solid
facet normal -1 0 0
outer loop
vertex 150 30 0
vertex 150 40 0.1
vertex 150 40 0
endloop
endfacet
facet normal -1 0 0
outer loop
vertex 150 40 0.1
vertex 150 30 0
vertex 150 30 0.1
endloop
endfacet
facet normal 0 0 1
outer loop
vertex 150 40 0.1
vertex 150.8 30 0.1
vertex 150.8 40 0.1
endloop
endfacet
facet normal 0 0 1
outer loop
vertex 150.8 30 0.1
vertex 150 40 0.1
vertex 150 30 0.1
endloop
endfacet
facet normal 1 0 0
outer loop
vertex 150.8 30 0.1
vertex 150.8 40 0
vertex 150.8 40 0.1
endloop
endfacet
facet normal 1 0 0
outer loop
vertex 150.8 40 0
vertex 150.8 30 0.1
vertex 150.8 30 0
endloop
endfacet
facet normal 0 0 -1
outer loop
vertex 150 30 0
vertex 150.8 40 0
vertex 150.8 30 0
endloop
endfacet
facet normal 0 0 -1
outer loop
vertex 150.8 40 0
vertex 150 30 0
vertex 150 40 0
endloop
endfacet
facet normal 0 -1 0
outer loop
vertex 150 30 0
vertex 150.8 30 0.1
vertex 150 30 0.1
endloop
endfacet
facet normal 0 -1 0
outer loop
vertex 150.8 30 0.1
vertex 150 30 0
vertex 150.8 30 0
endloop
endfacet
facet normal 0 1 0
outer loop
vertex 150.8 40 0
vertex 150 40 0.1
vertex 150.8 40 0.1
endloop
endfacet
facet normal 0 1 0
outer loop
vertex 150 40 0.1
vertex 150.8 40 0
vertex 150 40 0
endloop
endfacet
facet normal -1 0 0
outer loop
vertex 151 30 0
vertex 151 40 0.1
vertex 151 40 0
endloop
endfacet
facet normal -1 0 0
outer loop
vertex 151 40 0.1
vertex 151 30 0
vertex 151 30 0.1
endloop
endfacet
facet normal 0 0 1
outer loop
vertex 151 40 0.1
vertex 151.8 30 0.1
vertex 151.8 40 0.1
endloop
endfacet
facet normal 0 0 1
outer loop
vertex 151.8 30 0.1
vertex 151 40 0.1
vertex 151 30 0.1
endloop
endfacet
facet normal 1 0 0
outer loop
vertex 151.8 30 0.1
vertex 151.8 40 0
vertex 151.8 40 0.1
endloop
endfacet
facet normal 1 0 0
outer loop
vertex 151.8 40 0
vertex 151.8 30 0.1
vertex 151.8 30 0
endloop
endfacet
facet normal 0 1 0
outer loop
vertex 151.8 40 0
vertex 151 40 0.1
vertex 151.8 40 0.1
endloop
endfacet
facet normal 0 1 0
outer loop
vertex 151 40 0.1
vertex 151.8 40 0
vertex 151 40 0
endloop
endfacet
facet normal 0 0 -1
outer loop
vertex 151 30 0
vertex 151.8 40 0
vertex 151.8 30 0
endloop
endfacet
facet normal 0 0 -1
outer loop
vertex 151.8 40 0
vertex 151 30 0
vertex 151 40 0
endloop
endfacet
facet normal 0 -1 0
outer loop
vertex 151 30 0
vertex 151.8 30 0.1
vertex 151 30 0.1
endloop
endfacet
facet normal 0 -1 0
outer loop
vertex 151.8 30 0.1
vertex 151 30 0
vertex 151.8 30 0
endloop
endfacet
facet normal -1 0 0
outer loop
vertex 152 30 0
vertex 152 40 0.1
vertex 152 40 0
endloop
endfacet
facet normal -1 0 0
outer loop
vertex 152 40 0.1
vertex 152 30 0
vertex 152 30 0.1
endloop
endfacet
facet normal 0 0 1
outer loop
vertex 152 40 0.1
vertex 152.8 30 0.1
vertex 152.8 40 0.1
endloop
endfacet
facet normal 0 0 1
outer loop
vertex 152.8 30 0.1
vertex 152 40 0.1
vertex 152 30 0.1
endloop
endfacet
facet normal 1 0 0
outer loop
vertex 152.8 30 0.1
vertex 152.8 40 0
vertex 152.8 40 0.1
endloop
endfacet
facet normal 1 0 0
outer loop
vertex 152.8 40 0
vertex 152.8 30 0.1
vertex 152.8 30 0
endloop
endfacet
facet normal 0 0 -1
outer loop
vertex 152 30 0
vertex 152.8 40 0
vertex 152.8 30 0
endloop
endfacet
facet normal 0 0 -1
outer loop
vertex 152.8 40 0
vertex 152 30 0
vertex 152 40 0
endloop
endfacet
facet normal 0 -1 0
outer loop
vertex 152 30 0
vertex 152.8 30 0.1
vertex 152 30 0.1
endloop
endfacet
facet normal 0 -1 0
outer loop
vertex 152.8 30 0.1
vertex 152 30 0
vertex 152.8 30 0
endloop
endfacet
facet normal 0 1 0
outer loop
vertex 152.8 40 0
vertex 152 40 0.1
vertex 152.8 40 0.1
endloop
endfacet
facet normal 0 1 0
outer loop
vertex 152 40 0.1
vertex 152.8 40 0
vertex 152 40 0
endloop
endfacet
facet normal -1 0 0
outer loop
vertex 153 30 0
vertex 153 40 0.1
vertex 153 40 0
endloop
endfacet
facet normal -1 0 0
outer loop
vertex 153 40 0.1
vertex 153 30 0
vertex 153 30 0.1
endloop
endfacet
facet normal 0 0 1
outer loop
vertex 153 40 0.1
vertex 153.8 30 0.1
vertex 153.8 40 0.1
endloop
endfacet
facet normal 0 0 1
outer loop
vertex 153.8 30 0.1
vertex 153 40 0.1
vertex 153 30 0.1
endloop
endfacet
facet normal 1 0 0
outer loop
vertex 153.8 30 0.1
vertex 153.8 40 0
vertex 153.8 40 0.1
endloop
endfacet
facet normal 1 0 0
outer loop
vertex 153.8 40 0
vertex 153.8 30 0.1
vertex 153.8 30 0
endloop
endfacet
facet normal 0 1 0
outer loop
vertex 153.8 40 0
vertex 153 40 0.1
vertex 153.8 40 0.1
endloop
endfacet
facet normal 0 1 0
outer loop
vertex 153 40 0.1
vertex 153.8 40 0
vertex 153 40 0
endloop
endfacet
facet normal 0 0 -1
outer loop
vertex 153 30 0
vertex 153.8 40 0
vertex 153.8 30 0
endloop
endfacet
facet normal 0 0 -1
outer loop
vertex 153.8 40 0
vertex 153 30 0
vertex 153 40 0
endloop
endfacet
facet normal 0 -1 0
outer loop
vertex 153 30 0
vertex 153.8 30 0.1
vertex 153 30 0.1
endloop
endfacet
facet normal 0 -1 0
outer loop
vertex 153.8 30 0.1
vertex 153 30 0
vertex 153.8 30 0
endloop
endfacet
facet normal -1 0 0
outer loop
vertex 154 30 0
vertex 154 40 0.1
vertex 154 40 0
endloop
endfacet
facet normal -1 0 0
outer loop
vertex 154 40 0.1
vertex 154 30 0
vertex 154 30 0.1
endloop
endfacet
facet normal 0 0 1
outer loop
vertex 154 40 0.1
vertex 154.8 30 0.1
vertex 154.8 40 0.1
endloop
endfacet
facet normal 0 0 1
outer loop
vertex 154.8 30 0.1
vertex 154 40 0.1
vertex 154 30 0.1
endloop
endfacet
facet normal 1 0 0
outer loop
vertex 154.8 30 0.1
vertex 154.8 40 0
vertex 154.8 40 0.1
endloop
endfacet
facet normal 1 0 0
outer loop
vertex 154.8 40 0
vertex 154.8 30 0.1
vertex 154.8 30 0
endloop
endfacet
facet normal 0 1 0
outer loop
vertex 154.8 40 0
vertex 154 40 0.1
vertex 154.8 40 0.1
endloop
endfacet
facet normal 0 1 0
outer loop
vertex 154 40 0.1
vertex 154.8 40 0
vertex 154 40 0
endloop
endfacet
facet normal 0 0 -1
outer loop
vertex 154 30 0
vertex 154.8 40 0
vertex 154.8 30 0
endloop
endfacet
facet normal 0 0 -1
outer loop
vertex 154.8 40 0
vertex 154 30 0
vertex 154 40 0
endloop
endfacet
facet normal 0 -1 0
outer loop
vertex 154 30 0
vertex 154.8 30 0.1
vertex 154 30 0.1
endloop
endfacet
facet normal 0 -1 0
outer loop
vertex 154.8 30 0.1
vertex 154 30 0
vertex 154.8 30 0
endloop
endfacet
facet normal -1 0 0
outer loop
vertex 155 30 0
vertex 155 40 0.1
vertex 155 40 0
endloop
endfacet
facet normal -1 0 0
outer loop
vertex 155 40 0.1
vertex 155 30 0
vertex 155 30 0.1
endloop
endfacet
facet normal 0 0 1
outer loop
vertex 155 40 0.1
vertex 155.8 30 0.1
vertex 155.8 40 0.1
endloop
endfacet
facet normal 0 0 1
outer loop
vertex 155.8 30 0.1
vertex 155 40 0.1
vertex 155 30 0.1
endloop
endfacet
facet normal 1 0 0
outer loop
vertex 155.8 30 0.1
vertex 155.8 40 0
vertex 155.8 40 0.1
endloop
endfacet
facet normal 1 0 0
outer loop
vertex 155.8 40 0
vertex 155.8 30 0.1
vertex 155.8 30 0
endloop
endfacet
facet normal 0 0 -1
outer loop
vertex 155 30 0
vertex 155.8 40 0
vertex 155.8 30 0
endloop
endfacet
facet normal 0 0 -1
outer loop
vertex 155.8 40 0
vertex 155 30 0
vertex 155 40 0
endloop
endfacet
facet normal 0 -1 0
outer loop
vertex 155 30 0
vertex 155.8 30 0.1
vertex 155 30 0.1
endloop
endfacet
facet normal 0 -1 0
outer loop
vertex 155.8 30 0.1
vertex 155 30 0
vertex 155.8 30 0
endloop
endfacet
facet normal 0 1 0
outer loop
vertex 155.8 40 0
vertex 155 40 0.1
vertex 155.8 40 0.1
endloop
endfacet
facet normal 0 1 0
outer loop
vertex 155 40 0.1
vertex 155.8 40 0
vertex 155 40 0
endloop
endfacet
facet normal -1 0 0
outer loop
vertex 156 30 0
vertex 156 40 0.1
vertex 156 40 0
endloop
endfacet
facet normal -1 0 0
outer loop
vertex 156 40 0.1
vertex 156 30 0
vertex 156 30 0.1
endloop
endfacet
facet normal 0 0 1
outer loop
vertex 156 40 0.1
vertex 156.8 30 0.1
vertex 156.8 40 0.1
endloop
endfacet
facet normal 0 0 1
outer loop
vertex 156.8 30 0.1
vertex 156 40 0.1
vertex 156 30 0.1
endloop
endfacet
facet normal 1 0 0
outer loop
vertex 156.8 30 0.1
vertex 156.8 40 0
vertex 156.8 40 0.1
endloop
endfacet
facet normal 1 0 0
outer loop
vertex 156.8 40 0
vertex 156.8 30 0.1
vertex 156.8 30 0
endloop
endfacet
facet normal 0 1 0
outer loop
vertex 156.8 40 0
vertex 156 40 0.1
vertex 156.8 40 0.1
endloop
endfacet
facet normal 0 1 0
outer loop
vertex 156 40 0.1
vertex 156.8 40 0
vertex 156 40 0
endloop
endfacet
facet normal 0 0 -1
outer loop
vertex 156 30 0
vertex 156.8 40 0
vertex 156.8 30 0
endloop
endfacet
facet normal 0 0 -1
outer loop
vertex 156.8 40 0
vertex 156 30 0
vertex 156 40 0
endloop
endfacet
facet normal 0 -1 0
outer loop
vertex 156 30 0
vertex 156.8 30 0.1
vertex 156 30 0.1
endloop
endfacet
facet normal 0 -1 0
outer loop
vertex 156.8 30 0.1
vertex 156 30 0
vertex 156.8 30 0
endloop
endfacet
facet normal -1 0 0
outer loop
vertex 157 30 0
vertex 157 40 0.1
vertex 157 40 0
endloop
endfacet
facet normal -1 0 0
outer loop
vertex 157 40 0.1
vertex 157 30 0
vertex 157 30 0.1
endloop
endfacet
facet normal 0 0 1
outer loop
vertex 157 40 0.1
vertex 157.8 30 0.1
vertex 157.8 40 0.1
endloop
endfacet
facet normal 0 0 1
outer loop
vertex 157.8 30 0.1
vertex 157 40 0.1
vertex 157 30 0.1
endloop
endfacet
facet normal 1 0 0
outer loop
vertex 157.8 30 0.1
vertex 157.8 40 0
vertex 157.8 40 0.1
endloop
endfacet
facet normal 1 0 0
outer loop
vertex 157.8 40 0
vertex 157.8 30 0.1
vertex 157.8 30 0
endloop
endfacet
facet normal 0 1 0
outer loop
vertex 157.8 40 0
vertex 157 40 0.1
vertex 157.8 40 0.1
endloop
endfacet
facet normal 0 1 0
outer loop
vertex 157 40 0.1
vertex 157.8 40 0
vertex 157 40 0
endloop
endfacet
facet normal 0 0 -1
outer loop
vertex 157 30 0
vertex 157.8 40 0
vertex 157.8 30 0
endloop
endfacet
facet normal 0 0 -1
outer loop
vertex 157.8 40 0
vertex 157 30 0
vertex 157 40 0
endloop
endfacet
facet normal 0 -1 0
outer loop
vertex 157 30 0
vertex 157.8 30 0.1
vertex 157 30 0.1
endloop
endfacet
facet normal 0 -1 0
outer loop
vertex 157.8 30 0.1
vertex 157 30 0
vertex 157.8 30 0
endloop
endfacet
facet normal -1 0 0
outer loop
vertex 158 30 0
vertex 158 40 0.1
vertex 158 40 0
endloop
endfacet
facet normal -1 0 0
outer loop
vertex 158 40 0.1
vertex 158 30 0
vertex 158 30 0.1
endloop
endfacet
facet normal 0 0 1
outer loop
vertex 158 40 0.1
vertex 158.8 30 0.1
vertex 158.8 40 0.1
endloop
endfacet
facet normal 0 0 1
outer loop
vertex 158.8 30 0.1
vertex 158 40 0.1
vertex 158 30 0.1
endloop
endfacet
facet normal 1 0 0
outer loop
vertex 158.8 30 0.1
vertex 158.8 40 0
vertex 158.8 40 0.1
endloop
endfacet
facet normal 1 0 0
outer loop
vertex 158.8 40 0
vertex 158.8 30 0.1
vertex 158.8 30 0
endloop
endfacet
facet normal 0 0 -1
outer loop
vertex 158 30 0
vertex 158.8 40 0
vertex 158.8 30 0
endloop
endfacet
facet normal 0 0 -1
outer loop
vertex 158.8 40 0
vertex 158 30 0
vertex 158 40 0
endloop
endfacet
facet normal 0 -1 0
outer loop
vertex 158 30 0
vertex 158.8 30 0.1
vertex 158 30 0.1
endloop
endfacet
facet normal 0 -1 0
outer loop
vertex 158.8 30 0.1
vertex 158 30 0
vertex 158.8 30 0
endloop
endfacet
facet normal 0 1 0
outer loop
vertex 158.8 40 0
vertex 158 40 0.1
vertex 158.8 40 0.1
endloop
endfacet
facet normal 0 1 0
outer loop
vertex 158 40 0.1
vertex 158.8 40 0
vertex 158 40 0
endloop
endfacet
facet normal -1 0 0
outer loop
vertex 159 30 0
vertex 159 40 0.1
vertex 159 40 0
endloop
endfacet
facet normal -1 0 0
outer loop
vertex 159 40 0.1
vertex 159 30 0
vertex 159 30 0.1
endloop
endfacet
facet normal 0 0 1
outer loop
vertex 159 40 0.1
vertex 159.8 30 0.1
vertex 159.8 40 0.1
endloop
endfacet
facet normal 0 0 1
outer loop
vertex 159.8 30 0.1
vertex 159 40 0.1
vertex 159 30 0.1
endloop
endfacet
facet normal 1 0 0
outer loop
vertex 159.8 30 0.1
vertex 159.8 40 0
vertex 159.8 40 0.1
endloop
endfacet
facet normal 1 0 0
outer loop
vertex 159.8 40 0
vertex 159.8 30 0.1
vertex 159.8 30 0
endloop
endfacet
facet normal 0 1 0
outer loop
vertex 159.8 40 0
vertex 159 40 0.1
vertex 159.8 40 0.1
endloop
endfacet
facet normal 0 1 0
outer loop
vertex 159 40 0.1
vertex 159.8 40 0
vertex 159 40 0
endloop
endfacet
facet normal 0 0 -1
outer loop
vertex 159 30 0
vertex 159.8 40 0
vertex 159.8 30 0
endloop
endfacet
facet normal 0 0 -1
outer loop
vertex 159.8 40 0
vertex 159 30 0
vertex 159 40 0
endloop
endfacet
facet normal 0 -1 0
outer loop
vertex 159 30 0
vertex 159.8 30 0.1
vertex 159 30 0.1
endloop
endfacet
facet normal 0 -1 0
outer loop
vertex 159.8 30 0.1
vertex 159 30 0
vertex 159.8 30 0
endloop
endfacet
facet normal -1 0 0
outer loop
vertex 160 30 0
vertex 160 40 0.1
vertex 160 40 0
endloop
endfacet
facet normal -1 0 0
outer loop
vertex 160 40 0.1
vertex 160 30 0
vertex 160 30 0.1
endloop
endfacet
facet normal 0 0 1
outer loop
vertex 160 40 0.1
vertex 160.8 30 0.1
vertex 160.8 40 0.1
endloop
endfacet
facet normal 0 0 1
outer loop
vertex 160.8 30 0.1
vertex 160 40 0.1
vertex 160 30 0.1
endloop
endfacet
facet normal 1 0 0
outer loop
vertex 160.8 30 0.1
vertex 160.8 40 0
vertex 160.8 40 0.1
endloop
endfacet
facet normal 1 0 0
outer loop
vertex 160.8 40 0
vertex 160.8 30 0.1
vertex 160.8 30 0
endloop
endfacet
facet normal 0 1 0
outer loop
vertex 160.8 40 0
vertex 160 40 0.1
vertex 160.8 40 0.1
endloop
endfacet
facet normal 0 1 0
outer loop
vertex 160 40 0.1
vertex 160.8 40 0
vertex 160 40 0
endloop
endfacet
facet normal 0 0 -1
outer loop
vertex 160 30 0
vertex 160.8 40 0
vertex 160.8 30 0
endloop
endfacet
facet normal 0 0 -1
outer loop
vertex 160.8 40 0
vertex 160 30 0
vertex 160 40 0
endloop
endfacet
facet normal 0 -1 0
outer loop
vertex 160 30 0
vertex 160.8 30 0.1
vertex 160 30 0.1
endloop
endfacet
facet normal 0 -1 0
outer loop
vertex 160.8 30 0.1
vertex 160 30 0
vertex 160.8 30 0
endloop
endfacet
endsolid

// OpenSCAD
translate([10+140,10+20,0])
        for (i = [0 : 10]){
            translate([i,0,0])
                cube(size = [0.8,10,0.1]);
    }
